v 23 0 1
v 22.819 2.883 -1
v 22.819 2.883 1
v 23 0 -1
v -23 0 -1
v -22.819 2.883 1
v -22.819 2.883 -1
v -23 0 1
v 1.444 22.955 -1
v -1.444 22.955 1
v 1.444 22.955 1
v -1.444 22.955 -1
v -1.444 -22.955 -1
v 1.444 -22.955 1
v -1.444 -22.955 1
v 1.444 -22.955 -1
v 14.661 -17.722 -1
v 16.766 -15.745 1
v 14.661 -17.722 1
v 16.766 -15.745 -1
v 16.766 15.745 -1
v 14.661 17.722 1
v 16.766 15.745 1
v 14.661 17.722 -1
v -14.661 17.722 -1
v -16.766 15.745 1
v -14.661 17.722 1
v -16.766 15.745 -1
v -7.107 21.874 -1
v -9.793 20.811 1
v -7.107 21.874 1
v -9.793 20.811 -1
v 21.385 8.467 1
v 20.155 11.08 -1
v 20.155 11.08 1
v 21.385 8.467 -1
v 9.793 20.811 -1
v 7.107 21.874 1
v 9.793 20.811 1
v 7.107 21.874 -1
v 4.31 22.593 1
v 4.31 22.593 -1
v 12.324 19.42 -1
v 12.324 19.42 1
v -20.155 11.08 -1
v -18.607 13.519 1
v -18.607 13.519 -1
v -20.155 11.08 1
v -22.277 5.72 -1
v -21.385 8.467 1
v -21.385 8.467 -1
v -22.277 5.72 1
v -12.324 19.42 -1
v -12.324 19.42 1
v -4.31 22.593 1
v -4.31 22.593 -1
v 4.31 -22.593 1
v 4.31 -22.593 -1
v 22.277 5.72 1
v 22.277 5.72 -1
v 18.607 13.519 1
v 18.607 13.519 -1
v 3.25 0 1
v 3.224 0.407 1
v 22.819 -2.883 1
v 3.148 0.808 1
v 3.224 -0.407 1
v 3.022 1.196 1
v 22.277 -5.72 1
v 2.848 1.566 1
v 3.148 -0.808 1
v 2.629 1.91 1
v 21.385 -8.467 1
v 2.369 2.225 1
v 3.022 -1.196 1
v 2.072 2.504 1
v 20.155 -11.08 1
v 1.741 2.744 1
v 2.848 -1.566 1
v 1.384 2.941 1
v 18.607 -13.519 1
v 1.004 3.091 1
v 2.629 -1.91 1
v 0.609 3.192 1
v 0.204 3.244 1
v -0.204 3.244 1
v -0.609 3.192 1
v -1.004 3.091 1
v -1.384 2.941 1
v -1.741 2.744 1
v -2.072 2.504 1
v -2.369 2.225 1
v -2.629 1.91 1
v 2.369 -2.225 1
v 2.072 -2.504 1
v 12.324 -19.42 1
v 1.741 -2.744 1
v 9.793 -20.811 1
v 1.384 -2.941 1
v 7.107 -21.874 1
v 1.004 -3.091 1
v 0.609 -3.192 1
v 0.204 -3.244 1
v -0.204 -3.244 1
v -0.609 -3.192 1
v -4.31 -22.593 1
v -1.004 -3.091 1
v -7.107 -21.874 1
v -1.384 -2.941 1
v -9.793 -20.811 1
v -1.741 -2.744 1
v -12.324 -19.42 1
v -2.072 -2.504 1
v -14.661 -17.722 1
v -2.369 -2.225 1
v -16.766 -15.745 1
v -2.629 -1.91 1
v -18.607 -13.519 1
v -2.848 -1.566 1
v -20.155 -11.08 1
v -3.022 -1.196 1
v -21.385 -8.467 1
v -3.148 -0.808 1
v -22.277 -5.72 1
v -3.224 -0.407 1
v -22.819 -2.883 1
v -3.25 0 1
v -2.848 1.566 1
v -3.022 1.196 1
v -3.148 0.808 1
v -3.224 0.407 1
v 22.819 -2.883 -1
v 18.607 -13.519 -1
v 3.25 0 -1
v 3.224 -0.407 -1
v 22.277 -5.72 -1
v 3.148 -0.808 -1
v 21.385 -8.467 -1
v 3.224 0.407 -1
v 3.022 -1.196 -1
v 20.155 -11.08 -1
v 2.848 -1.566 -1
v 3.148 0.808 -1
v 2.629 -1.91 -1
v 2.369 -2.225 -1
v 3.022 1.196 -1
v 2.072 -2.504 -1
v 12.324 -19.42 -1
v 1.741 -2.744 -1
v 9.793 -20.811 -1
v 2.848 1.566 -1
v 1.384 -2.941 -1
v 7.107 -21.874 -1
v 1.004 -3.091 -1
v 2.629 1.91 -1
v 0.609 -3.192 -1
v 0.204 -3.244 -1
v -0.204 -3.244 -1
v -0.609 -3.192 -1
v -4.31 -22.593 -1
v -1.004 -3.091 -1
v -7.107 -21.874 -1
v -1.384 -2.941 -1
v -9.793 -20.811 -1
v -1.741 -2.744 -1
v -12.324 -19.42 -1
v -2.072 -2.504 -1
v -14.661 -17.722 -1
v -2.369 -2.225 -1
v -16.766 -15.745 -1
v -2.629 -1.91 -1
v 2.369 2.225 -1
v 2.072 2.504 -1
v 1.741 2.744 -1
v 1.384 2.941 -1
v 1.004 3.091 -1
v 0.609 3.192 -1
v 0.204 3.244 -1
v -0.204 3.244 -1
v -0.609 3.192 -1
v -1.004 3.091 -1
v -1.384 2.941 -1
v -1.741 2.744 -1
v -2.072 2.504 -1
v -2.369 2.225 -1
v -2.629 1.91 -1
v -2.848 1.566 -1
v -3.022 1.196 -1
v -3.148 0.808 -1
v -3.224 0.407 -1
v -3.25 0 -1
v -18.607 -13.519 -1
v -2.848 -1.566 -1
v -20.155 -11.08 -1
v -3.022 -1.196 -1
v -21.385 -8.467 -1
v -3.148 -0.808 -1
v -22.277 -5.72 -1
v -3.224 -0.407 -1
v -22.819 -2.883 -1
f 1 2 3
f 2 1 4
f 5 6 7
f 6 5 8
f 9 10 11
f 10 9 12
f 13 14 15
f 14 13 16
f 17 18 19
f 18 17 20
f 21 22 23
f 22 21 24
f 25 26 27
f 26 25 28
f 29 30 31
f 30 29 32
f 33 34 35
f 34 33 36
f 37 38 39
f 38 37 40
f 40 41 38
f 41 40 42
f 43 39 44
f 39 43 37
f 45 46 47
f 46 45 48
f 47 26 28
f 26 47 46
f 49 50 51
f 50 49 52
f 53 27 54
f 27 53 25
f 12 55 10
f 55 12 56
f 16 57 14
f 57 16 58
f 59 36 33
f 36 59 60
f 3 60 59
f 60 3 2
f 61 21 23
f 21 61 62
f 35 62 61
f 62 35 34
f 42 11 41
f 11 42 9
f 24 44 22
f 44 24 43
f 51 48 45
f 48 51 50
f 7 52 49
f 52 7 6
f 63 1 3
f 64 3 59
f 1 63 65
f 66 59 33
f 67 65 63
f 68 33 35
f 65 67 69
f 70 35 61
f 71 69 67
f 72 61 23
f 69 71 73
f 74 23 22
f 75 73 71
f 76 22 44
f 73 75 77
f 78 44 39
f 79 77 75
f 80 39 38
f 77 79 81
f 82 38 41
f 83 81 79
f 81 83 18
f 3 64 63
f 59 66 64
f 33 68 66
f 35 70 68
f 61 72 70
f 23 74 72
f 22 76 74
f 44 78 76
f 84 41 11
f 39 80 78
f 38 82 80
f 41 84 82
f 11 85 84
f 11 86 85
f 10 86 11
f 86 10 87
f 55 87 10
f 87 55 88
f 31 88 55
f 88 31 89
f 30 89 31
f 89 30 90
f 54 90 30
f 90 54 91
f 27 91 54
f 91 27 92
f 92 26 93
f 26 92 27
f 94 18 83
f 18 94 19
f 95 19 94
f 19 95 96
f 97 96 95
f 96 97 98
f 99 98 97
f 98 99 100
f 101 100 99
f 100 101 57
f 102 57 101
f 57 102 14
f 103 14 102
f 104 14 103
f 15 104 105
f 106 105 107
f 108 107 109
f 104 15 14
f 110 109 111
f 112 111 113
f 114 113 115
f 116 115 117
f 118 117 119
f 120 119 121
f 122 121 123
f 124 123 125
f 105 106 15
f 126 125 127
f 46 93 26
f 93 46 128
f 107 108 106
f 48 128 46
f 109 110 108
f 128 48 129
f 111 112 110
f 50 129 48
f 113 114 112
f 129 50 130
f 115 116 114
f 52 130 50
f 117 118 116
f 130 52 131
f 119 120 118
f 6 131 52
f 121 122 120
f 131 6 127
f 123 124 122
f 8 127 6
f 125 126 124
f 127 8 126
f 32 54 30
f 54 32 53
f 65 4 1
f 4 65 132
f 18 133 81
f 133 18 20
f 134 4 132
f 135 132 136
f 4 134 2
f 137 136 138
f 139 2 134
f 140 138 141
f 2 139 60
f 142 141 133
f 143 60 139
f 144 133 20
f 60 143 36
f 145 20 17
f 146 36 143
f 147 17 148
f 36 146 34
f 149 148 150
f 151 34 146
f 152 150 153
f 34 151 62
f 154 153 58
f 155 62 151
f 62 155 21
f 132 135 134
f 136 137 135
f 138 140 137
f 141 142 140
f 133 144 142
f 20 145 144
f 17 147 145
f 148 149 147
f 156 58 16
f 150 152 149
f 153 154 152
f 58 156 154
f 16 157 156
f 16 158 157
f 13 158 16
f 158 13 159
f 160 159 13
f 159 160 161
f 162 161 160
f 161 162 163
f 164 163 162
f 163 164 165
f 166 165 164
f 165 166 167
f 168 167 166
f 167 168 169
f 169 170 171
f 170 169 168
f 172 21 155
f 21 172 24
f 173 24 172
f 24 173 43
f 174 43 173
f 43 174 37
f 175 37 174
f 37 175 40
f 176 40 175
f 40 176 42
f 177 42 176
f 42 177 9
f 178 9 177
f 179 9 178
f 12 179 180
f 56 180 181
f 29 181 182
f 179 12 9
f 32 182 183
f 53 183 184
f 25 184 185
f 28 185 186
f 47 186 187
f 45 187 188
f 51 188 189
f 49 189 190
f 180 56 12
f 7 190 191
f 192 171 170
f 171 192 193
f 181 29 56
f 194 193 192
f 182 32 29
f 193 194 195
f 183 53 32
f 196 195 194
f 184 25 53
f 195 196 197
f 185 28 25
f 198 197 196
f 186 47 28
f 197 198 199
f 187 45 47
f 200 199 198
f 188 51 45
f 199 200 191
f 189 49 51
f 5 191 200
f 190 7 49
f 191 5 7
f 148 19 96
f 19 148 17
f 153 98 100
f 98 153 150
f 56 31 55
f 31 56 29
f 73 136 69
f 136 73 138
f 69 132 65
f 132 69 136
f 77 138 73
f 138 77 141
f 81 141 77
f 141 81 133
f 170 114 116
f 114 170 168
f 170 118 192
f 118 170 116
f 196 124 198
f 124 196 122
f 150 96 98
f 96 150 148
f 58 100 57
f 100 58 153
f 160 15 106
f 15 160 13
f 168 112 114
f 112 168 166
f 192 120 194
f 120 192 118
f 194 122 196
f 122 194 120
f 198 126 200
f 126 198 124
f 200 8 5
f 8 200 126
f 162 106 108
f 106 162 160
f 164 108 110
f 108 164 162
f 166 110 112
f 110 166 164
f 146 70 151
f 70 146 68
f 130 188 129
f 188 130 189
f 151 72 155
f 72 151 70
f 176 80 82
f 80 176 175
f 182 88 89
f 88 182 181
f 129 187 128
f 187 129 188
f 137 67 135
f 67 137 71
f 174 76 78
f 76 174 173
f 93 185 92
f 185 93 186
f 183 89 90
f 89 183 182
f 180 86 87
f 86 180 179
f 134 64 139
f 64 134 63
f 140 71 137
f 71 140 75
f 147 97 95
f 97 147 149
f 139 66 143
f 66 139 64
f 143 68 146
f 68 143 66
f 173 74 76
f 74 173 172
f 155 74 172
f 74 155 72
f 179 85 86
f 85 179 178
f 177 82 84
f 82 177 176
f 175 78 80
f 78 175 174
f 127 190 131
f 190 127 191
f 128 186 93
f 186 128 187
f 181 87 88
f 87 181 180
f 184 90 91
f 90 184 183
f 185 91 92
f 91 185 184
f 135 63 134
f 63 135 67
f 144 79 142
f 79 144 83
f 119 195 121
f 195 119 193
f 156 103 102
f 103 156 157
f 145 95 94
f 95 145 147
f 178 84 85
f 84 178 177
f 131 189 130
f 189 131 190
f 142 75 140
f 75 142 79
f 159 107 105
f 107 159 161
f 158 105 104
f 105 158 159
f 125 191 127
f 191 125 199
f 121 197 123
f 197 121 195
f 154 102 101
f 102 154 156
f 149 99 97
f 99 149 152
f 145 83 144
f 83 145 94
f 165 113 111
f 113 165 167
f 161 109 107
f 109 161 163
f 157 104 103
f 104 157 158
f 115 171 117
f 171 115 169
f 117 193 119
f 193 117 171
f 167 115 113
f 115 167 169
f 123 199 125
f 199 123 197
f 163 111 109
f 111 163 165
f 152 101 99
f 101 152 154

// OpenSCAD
$fn = 50;


difference() {
	union() {
		translate(v = [0, 0, -1.0000000000]) {
			cylinder(h = 2, r = 23.0000000000);
		}
	}
	union() {
		translate(v = [0, 0, -100.0000000000]) {
			cylinder(h = 200, r = 3.2500000000);
		}
	}
}
